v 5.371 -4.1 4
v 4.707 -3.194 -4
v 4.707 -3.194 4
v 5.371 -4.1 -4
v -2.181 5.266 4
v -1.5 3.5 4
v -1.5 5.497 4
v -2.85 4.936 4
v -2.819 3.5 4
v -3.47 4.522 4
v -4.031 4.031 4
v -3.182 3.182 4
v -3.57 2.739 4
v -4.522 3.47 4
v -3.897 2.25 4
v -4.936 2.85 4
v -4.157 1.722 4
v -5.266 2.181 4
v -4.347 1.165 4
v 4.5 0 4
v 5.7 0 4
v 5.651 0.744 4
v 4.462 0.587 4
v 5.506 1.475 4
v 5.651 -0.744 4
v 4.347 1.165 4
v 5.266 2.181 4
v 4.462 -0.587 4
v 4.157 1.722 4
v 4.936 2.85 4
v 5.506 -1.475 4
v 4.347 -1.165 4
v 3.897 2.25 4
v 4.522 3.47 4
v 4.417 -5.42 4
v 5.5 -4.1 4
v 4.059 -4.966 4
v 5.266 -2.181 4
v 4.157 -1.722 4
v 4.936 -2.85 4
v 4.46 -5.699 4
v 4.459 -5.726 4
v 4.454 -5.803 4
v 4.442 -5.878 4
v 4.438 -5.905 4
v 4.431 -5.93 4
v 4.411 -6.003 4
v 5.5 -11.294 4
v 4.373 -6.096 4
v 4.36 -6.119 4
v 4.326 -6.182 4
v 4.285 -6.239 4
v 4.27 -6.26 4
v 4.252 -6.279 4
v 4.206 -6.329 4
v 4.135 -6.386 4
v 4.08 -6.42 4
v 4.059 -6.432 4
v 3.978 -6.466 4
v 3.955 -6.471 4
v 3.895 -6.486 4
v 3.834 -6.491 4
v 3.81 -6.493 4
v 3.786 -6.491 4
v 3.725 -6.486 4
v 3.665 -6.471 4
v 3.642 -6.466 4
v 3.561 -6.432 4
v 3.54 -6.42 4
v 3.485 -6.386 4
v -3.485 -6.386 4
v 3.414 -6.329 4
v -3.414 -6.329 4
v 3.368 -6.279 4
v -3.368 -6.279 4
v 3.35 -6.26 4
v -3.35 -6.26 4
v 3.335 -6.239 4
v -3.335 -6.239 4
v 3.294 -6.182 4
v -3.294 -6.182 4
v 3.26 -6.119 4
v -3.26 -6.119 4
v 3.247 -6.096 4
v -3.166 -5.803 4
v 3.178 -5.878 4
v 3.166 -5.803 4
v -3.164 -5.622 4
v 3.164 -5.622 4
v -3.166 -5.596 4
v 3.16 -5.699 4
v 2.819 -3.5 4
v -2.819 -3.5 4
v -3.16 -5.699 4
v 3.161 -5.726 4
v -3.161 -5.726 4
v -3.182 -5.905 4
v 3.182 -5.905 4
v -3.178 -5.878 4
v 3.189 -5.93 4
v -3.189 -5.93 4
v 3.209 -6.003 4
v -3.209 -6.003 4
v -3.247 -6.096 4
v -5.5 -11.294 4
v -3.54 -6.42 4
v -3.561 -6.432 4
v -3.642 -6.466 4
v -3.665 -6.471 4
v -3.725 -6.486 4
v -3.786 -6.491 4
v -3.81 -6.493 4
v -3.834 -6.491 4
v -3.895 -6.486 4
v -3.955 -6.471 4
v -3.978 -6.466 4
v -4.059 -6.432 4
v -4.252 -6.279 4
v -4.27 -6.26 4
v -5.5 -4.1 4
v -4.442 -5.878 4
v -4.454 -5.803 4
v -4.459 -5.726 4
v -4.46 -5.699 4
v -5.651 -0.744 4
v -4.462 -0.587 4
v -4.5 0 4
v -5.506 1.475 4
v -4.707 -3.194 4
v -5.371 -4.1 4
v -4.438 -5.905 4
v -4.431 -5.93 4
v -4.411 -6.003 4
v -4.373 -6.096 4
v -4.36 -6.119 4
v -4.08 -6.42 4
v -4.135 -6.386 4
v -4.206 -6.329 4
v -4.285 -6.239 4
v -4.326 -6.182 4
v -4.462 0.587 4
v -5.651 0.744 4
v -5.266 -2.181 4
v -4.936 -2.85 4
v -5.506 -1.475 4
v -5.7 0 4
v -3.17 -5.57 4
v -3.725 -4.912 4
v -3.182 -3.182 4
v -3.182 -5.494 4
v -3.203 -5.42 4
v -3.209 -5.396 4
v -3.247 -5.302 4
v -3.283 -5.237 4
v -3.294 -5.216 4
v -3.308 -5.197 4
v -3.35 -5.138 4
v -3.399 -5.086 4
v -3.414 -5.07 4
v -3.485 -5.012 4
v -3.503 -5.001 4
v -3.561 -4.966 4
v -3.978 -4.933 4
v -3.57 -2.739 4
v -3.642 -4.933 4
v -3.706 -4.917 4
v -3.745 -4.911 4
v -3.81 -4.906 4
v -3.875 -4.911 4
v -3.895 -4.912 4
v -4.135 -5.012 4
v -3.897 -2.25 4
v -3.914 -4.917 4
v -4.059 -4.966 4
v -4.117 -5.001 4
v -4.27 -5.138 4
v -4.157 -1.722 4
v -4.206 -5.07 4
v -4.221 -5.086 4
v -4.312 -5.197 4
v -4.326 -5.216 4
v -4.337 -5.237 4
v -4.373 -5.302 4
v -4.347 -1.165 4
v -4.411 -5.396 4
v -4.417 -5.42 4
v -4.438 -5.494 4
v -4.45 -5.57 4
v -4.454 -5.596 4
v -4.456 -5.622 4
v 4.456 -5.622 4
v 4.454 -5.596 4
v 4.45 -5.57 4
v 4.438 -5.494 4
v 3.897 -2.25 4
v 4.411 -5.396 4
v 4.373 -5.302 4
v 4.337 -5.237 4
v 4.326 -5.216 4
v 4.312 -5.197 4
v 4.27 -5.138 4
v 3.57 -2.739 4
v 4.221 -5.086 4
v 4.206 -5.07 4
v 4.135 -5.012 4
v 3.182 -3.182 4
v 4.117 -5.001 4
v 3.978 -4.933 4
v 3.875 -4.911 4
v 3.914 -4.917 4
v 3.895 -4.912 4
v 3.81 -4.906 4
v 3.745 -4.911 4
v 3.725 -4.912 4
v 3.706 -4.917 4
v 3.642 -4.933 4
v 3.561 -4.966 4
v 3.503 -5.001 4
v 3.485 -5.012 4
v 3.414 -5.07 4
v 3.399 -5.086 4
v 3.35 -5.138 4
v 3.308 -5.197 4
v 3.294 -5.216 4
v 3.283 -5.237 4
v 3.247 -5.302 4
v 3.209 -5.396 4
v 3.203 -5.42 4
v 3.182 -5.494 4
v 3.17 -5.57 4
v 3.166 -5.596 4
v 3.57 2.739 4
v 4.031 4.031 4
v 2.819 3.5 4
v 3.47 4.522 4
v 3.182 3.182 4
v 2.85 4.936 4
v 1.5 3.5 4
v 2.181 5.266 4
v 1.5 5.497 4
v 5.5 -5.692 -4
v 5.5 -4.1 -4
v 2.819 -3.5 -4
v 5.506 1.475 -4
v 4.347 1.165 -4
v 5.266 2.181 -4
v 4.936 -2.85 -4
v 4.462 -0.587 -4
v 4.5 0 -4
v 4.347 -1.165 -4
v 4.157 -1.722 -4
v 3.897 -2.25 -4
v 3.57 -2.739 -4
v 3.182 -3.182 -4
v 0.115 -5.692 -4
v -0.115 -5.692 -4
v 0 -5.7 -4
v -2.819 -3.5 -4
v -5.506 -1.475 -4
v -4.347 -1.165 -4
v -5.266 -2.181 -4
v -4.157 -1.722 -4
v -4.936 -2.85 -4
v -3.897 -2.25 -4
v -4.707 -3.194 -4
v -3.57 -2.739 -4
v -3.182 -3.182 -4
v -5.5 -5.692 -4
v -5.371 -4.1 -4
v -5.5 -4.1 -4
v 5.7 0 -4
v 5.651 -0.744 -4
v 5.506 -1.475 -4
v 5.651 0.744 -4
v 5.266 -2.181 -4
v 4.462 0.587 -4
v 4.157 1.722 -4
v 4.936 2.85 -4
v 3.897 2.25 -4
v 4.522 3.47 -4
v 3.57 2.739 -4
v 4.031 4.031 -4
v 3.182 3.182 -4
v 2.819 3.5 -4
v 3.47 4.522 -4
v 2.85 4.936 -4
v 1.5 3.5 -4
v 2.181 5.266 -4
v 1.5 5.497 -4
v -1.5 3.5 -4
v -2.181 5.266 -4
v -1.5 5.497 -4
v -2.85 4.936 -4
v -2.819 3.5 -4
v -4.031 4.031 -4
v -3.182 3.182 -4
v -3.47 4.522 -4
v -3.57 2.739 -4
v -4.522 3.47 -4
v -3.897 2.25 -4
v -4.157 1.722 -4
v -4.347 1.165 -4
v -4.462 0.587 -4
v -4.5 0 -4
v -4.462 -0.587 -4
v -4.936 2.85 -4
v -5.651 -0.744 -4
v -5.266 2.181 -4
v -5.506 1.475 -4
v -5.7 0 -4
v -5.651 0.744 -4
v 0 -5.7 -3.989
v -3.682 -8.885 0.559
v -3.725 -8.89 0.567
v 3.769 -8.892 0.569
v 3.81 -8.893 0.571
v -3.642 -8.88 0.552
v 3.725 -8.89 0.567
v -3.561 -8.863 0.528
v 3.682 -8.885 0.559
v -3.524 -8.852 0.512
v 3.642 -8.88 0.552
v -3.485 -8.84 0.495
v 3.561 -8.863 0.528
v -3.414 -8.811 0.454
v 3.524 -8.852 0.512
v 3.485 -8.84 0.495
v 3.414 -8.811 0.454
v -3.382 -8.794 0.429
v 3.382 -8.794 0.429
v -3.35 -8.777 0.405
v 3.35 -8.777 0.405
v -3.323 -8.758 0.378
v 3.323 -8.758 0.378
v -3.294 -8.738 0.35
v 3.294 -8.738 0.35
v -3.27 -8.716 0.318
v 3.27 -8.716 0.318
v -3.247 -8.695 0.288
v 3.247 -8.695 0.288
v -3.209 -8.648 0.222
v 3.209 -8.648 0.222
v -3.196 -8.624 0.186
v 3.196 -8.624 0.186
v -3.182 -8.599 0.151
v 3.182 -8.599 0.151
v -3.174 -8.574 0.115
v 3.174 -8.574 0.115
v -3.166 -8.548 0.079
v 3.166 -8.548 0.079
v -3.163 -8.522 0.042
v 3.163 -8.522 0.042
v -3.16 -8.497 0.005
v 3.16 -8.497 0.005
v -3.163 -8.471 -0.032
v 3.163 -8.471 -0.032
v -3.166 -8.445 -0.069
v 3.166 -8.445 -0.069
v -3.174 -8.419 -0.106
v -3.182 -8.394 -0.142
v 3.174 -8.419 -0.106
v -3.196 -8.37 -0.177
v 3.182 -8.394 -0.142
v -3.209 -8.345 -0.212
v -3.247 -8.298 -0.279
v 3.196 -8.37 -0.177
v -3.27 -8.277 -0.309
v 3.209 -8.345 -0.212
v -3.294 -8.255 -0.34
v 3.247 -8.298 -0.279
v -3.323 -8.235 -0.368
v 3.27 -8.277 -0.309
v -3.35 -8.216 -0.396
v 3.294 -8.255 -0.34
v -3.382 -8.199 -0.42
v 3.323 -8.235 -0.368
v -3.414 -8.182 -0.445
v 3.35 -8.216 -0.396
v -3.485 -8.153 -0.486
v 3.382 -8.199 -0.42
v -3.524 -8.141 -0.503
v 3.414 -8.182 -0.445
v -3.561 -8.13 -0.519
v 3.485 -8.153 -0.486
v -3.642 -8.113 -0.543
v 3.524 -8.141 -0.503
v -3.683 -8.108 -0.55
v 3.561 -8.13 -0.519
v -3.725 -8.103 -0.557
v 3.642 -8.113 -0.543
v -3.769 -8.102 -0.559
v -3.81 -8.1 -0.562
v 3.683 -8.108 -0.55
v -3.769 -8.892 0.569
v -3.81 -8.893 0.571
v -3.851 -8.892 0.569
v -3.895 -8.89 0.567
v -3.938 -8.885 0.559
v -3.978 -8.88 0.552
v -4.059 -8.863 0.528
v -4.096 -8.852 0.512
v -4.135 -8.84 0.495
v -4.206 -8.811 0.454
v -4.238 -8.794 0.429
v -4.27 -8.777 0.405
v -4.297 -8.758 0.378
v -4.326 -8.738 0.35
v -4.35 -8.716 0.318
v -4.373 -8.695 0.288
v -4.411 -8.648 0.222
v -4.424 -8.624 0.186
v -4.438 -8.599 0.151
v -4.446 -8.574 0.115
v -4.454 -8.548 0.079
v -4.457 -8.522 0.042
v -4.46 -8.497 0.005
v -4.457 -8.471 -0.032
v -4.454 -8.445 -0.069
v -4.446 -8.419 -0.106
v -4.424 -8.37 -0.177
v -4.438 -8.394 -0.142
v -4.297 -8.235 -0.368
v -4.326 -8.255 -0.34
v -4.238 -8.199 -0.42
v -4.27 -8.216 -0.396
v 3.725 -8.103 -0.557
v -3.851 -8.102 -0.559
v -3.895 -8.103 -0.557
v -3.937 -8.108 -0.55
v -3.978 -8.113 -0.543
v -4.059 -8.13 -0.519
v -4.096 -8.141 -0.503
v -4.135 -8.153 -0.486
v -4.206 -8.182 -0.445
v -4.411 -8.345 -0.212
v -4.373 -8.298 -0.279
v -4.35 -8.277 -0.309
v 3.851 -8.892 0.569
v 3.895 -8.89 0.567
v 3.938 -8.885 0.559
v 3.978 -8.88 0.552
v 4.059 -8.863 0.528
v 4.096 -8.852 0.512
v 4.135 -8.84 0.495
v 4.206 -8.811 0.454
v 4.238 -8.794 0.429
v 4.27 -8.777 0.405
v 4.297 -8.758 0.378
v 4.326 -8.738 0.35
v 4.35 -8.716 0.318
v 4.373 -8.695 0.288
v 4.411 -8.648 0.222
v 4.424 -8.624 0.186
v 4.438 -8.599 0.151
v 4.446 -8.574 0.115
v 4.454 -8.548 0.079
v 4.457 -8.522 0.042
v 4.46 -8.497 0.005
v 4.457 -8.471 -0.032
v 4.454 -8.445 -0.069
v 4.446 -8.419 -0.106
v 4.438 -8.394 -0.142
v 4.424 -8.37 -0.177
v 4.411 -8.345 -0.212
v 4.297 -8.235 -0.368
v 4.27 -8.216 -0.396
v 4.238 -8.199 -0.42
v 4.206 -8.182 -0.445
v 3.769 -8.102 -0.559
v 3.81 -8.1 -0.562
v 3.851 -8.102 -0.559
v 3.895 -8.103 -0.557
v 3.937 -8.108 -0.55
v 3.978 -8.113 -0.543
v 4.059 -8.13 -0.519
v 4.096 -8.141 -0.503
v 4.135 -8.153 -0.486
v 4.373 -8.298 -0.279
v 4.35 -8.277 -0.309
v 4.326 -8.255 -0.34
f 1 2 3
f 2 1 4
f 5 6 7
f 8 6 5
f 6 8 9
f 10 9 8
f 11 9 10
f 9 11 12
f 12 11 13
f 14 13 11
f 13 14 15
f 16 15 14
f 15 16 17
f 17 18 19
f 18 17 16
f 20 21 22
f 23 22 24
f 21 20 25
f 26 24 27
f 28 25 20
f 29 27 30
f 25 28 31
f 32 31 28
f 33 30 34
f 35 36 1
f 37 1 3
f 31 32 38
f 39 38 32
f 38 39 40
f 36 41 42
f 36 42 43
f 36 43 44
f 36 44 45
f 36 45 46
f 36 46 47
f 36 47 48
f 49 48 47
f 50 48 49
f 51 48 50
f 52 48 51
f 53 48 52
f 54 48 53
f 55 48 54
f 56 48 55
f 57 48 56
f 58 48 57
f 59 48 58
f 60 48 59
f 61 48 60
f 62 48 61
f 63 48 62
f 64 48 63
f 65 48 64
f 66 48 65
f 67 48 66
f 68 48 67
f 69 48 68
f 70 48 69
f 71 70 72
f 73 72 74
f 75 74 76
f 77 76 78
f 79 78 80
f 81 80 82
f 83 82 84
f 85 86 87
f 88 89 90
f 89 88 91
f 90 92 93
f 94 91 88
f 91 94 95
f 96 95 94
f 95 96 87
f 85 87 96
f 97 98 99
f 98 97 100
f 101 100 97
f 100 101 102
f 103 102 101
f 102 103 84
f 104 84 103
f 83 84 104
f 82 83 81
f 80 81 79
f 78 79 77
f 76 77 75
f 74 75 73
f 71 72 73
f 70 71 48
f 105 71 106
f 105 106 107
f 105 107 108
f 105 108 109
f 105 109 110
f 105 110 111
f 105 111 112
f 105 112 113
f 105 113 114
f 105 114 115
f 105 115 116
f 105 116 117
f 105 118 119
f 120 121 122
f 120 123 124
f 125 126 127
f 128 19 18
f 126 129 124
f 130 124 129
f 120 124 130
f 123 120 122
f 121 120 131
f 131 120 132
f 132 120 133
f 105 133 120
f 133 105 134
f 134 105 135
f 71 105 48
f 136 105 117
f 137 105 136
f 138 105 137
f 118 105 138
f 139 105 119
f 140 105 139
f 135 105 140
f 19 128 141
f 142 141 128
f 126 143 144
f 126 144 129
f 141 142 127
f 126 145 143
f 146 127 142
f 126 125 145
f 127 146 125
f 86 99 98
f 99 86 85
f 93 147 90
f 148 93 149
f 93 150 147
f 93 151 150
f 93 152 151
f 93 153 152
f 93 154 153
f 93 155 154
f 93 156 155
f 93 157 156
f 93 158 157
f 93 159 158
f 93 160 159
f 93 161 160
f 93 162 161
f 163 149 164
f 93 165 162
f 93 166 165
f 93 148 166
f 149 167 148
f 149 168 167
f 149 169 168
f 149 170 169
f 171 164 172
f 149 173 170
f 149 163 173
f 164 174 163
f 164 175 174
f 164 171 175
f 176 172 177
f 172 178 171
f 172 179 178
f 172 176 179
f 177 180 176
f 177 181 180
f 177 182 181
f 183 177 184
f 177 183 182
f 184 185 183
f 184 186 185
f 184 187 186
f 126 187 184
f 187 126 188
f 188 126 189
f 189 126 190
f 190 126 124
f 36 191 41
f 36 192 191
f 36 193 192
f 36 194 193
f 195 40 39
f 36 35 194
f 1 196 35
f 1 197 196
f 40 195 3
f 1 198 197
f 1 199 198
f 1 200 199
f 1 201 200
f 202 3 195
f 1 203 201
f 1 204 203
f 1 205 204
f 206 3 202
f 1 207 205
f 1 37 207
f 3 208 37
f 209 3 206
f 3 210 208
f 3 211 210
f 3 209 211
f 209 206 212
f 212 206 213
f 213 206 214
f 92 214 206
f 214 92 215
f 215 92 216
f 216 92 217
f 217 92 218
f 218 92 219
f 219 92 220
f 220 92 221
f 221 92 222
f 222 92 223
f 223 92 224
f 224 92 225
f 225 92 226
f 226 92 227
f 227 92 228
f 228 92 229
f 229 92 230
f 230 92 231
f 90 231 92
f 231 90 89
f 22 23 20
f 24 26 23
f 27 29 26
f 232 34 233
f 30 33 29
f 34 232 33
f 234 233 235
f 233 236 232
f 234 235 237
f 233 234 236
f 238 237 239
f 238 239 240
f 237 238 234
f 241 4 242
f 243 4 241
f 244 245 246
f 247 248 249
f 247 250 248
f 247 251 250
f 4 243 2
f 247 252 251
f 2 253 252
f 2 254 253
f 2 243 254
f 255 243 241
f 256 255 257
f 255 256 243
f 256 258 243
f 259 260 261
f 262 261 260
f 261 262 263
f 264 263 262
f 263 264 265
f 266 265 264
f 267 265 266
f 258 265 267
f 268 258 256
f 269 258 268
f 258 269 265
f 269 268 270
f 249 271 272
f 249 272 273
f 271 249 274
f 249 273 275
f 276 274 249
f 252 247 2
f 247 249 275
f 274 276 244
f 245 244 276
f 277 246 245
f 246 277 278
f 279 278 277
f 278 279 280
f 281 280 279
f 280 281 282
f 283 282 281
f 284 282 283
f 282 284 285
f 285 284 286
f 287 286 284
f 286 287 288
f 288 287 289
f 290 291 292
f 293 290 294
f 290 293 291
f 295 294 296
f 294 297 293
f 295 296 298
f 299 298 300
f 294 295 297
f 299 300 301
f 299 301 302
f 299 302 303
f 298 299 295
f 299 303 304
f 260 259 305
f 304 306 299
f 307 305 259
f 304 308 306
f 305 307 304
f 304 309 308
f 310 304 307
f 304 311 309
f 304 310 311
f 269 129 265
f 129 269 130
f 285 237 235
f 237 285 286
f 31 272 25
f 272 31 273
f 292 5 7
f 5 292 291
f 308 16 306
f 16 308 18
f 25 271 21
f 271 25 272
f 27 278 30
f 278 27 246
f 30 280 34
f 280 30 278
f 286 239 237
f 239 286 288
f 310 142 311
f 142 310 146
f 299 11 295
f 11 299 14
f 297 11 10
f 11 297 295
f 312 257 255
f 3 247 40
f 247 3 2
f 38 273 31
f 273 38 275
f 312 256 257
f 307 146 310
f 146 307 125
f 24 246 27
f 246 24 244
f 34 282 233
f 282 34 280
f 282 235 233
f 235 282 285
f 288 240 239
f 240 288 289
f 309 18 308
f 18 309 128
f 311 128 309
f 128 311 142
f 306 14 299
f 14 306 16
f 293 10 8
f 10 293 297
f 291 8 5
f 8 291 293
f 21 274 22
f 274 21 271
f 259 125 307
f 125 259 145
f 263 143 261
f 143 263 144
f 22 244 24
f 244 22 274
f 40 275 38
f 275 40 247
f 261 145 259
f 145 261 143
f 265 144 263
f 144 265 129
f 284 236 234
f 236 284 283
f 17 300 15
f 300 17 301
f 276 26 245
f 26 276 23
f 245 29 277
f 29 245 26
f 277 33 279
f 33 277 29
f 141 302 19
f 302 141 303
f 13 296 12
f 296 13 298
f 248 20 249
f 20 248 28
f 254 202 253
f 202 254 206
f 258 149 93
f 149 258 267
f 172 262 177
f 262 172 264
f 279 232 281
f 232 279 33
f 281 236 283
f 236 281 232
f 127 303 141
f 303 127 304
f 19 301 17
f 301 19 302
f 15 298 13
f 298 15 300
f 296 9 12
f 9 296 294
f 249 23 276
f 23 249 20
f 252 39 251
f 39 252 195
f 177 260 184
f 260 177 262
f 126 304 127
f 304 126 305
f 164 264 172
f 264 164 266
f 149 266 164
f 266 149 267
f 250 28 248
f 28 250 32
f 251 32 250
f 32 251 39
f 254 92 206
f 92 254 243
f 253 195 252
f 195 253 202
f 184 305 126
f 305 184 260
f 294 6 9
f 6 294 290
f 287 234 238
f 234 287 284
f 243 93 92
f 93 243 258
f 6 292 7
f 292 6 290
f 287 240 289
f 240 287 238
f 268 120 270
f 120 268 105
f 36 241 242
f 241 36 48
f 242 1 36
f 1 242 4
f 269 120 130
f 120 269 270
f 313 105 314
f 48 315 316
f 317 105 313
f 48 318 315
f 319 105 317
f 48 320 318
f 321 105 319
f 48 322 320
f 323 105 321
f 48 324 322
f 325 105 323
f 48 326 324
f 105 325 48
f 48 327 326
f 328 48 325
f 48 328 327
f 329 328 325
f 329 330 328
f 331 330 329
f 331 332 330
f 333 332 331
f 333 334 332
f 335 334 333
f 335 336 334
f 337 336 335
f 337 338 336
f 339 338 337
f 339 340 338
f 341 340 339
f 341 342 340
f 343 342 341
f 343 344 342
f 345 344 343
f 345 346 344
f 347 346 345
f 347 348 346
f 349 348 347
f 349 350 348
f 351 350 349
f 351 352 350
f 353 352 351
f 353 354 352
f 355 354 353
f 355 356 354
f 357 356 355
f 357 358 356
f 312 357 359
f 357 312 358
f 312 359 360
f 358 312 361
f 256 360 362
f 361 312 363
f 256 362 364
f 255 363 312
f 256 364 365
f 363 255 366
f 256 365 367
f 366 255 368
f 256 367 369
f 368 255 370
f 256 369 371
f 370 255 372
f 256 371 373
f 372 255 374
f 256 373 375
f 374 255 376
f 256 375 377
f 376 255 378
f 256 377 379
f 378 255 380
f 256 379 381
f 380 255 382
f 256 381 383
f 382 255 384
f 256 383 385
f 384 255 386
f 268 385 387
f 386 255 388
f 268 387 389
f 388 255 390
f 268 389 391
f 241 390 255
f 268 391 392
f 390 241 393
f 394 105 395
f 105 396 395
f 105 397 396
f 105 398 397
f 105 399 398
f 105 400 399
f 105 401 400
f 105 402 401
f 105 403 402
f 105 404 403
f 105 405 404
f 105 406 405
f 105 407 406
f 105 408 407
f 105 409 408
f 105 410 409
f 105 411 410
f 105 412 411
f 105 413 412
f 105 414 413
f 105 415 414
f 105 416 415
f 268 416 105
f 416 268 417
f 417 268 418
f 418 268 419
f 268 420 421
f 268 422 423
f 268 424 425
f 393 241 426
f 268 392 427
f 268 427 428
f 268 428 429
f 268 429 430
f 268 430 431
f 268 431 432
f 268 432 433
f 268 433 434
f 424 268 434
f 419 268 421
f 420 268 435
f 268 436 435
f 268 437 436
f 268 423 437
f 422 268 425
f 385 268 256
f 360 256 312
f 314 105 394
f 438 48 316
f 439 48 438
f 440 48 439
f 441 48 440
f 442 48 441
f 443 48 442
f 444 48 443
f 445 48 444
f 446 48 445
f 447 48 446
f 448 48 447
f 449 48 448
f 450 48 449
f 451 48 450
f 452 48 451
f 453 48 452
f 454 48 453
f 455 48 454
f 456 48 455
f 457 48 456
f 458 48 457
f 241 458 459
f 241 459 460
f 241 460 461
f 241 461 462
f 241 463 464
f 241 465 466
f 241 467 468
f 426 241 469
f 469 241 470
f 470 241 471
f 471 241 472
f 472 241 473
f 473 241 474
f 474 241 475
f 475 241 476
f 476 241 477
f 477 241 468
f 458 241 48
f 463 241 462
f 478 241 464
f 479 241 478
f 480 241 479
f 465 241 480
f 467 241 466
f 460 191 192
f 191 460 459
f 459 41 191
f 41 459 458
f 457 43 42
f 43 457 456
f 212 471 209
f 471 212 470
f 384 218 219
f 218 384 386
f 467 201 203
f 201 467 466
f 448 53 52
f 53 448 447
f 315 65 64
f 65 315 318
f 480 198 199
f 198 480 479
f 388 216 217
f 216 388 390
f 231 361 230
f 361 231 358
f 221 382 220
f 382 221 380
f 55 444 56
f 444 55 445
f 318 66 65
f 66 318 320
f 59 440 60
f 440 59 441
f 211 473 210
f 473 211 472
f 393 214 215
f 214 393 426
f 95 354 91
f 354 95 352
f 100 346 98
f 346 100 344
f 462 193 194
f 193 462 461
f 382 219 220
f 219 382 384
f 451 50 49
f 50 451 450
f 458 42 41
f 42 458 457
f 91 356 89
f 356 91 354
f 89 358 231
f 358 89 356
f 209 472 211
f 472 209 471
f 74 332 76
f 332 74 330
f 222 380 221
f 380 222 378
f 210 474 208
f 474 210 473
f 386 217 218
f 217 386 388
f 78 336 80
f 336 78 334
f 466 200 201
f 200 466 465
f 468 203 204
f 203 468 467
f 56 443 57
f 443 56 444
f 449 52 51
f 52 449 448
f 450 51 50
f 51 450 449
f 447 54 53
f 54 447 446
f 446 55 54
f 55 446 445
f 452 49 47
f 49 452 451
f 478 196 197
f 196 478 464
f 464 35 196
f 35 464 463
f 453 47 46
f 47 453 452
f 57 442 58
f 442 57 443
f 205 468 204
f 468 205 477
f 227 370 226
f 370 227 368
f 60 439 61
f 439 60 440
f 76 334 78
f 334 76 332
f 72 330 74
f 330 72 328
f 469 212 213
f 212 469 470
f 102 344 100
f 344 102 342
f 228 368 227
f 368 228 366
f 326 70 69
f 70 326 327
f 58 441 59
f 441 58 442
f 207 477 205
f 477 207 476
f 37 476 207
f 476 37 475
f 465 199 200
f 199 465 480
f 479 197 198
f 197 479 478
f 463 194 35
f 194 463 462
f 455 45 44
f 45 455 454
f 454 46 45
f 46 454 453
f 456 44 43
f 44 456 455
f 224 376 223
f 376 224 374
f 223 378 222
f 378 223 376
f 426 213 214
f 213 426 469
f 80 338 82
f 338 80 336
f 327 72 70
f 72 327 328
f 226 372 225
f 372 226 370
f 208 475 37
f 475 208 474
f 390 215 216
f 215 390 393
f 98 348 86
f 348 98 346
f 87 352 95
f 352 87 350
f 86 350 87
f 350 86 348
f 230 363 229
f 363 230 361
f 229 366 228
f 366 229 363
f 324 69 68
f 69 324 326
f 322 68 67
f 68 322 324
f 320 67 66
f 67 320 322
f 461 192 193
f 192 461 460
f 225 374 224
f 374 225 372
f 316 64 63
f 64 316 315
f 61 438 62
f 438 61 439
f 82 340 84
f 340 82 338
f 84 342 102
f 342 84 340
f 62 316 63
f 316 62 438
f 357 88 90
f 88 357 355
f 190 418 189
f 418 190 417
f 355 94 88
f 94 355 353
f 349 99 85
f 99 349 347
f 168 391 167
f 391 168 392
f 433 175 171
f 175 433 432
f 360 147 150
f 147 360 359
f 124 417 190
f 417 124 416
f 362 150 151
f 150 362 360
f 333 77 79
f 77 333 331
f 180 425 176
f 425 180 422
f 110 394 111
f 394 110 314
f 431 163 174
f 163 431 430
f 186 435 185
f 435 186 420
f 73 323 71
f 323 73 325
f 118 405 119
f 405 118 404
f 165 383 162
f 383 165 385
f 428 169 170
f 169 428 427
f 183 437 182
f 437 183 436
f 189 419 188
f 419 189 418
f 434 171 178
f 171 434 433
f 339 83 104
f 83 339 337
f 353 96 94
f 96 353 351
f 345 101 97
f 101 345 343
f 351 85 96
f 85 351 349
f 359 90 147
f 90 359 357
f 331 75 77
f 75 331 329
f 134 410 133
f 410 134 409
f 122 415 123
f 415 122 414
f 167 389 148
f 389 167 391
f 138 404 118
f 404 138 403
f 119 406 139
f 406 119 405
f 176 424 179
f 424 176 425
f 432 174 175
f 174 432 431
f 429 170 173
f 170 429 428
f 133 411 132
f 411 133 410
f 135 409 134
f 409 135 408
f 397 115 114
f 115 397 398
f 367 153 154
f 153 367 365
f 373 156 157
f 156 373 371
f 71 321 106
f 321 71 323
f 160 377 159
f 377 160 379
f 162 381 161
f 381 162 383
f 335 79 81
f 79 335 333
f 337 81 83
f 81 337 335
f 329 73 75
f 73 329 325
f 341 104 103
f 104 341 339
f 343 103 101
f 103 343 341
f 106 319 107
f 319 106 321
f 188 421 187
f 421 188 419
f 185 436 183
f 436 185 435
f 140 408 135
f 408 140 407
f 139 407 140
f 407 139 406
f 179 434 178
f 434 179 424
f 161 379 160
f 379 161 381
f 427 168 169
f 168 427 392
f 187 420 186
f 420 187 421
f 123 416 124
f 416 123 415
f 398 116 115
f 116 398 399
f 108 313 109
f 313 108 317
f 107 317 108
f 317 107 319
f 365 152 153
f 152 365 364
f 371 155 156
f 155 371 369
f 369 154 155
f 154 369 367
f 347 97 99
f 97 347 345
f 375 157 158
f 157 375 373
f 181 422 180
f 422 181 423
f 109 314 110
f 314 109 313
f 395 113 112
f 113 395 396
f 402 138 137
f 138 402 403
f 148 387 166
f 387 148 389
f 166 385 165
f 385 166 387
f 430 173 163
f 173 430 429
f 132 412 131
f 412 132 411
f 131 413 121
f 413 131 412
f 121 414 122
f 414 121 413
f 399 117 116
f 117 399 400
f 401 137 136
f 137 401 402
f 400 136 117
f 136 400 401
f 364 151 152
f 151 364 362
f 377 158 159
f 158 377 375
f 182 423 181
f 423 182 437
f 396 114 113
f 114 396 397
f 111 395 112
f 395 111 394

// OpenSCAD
// Halterung für einen Micromotor
// Kann direkt auf die Platine montiert werden
// 
// Ingo M. Schaefer, Februar 2017

fn = 48;
height = 8;

difference()
{
  union()
  {
	// Stabilisierung
    translate([0,-4.2,0]) difference() 
    {
      scale([1.1,1.5,1]) rotate([0,0,45]) cube([7,7,height], center=true);
      translate([0,-4,0]) cube([10,8,height+1], center=true);
    }
	// Der äußere Ring
    cylinder(h=height, r=9/2+1.2, center=true, $fn=fn);
  }

  // Innenteil (in der Form des Motors)
  difference() 
  {
    cylinder(h=height+1, r=9/2, center=true, $fn=fn);
    translate([0,5+7/2,0]) cube([10,10,height+1], center=true);
    translate([0,-5-7/2,0]) cube([10,10,height+1], center=true);
  }

  // Schlitz
  translate([0,5,0]) cube([3,5,height+1], center=true); 
}

// schräger Sockel mit Löchern für die Drähte
translate([0,-10.5,0])
difference()
{
  translate([0,1.4,0]) cube([11,10,height], center=true);
  translate([0,-6.7,-5]) rotate([35,0,0]) cube([12,20,20], center=true);
  translate([7.62/2,2.0,0]) rotate([-35,0,0]) cylinder(h=20, r=0.65, center=true, $fn=fn);
  translate([-7.62/2,2.0,0]) rotate([-35,0,0]) cylinder(h=20, r=0.65, center=true, $fn=fn);
}
